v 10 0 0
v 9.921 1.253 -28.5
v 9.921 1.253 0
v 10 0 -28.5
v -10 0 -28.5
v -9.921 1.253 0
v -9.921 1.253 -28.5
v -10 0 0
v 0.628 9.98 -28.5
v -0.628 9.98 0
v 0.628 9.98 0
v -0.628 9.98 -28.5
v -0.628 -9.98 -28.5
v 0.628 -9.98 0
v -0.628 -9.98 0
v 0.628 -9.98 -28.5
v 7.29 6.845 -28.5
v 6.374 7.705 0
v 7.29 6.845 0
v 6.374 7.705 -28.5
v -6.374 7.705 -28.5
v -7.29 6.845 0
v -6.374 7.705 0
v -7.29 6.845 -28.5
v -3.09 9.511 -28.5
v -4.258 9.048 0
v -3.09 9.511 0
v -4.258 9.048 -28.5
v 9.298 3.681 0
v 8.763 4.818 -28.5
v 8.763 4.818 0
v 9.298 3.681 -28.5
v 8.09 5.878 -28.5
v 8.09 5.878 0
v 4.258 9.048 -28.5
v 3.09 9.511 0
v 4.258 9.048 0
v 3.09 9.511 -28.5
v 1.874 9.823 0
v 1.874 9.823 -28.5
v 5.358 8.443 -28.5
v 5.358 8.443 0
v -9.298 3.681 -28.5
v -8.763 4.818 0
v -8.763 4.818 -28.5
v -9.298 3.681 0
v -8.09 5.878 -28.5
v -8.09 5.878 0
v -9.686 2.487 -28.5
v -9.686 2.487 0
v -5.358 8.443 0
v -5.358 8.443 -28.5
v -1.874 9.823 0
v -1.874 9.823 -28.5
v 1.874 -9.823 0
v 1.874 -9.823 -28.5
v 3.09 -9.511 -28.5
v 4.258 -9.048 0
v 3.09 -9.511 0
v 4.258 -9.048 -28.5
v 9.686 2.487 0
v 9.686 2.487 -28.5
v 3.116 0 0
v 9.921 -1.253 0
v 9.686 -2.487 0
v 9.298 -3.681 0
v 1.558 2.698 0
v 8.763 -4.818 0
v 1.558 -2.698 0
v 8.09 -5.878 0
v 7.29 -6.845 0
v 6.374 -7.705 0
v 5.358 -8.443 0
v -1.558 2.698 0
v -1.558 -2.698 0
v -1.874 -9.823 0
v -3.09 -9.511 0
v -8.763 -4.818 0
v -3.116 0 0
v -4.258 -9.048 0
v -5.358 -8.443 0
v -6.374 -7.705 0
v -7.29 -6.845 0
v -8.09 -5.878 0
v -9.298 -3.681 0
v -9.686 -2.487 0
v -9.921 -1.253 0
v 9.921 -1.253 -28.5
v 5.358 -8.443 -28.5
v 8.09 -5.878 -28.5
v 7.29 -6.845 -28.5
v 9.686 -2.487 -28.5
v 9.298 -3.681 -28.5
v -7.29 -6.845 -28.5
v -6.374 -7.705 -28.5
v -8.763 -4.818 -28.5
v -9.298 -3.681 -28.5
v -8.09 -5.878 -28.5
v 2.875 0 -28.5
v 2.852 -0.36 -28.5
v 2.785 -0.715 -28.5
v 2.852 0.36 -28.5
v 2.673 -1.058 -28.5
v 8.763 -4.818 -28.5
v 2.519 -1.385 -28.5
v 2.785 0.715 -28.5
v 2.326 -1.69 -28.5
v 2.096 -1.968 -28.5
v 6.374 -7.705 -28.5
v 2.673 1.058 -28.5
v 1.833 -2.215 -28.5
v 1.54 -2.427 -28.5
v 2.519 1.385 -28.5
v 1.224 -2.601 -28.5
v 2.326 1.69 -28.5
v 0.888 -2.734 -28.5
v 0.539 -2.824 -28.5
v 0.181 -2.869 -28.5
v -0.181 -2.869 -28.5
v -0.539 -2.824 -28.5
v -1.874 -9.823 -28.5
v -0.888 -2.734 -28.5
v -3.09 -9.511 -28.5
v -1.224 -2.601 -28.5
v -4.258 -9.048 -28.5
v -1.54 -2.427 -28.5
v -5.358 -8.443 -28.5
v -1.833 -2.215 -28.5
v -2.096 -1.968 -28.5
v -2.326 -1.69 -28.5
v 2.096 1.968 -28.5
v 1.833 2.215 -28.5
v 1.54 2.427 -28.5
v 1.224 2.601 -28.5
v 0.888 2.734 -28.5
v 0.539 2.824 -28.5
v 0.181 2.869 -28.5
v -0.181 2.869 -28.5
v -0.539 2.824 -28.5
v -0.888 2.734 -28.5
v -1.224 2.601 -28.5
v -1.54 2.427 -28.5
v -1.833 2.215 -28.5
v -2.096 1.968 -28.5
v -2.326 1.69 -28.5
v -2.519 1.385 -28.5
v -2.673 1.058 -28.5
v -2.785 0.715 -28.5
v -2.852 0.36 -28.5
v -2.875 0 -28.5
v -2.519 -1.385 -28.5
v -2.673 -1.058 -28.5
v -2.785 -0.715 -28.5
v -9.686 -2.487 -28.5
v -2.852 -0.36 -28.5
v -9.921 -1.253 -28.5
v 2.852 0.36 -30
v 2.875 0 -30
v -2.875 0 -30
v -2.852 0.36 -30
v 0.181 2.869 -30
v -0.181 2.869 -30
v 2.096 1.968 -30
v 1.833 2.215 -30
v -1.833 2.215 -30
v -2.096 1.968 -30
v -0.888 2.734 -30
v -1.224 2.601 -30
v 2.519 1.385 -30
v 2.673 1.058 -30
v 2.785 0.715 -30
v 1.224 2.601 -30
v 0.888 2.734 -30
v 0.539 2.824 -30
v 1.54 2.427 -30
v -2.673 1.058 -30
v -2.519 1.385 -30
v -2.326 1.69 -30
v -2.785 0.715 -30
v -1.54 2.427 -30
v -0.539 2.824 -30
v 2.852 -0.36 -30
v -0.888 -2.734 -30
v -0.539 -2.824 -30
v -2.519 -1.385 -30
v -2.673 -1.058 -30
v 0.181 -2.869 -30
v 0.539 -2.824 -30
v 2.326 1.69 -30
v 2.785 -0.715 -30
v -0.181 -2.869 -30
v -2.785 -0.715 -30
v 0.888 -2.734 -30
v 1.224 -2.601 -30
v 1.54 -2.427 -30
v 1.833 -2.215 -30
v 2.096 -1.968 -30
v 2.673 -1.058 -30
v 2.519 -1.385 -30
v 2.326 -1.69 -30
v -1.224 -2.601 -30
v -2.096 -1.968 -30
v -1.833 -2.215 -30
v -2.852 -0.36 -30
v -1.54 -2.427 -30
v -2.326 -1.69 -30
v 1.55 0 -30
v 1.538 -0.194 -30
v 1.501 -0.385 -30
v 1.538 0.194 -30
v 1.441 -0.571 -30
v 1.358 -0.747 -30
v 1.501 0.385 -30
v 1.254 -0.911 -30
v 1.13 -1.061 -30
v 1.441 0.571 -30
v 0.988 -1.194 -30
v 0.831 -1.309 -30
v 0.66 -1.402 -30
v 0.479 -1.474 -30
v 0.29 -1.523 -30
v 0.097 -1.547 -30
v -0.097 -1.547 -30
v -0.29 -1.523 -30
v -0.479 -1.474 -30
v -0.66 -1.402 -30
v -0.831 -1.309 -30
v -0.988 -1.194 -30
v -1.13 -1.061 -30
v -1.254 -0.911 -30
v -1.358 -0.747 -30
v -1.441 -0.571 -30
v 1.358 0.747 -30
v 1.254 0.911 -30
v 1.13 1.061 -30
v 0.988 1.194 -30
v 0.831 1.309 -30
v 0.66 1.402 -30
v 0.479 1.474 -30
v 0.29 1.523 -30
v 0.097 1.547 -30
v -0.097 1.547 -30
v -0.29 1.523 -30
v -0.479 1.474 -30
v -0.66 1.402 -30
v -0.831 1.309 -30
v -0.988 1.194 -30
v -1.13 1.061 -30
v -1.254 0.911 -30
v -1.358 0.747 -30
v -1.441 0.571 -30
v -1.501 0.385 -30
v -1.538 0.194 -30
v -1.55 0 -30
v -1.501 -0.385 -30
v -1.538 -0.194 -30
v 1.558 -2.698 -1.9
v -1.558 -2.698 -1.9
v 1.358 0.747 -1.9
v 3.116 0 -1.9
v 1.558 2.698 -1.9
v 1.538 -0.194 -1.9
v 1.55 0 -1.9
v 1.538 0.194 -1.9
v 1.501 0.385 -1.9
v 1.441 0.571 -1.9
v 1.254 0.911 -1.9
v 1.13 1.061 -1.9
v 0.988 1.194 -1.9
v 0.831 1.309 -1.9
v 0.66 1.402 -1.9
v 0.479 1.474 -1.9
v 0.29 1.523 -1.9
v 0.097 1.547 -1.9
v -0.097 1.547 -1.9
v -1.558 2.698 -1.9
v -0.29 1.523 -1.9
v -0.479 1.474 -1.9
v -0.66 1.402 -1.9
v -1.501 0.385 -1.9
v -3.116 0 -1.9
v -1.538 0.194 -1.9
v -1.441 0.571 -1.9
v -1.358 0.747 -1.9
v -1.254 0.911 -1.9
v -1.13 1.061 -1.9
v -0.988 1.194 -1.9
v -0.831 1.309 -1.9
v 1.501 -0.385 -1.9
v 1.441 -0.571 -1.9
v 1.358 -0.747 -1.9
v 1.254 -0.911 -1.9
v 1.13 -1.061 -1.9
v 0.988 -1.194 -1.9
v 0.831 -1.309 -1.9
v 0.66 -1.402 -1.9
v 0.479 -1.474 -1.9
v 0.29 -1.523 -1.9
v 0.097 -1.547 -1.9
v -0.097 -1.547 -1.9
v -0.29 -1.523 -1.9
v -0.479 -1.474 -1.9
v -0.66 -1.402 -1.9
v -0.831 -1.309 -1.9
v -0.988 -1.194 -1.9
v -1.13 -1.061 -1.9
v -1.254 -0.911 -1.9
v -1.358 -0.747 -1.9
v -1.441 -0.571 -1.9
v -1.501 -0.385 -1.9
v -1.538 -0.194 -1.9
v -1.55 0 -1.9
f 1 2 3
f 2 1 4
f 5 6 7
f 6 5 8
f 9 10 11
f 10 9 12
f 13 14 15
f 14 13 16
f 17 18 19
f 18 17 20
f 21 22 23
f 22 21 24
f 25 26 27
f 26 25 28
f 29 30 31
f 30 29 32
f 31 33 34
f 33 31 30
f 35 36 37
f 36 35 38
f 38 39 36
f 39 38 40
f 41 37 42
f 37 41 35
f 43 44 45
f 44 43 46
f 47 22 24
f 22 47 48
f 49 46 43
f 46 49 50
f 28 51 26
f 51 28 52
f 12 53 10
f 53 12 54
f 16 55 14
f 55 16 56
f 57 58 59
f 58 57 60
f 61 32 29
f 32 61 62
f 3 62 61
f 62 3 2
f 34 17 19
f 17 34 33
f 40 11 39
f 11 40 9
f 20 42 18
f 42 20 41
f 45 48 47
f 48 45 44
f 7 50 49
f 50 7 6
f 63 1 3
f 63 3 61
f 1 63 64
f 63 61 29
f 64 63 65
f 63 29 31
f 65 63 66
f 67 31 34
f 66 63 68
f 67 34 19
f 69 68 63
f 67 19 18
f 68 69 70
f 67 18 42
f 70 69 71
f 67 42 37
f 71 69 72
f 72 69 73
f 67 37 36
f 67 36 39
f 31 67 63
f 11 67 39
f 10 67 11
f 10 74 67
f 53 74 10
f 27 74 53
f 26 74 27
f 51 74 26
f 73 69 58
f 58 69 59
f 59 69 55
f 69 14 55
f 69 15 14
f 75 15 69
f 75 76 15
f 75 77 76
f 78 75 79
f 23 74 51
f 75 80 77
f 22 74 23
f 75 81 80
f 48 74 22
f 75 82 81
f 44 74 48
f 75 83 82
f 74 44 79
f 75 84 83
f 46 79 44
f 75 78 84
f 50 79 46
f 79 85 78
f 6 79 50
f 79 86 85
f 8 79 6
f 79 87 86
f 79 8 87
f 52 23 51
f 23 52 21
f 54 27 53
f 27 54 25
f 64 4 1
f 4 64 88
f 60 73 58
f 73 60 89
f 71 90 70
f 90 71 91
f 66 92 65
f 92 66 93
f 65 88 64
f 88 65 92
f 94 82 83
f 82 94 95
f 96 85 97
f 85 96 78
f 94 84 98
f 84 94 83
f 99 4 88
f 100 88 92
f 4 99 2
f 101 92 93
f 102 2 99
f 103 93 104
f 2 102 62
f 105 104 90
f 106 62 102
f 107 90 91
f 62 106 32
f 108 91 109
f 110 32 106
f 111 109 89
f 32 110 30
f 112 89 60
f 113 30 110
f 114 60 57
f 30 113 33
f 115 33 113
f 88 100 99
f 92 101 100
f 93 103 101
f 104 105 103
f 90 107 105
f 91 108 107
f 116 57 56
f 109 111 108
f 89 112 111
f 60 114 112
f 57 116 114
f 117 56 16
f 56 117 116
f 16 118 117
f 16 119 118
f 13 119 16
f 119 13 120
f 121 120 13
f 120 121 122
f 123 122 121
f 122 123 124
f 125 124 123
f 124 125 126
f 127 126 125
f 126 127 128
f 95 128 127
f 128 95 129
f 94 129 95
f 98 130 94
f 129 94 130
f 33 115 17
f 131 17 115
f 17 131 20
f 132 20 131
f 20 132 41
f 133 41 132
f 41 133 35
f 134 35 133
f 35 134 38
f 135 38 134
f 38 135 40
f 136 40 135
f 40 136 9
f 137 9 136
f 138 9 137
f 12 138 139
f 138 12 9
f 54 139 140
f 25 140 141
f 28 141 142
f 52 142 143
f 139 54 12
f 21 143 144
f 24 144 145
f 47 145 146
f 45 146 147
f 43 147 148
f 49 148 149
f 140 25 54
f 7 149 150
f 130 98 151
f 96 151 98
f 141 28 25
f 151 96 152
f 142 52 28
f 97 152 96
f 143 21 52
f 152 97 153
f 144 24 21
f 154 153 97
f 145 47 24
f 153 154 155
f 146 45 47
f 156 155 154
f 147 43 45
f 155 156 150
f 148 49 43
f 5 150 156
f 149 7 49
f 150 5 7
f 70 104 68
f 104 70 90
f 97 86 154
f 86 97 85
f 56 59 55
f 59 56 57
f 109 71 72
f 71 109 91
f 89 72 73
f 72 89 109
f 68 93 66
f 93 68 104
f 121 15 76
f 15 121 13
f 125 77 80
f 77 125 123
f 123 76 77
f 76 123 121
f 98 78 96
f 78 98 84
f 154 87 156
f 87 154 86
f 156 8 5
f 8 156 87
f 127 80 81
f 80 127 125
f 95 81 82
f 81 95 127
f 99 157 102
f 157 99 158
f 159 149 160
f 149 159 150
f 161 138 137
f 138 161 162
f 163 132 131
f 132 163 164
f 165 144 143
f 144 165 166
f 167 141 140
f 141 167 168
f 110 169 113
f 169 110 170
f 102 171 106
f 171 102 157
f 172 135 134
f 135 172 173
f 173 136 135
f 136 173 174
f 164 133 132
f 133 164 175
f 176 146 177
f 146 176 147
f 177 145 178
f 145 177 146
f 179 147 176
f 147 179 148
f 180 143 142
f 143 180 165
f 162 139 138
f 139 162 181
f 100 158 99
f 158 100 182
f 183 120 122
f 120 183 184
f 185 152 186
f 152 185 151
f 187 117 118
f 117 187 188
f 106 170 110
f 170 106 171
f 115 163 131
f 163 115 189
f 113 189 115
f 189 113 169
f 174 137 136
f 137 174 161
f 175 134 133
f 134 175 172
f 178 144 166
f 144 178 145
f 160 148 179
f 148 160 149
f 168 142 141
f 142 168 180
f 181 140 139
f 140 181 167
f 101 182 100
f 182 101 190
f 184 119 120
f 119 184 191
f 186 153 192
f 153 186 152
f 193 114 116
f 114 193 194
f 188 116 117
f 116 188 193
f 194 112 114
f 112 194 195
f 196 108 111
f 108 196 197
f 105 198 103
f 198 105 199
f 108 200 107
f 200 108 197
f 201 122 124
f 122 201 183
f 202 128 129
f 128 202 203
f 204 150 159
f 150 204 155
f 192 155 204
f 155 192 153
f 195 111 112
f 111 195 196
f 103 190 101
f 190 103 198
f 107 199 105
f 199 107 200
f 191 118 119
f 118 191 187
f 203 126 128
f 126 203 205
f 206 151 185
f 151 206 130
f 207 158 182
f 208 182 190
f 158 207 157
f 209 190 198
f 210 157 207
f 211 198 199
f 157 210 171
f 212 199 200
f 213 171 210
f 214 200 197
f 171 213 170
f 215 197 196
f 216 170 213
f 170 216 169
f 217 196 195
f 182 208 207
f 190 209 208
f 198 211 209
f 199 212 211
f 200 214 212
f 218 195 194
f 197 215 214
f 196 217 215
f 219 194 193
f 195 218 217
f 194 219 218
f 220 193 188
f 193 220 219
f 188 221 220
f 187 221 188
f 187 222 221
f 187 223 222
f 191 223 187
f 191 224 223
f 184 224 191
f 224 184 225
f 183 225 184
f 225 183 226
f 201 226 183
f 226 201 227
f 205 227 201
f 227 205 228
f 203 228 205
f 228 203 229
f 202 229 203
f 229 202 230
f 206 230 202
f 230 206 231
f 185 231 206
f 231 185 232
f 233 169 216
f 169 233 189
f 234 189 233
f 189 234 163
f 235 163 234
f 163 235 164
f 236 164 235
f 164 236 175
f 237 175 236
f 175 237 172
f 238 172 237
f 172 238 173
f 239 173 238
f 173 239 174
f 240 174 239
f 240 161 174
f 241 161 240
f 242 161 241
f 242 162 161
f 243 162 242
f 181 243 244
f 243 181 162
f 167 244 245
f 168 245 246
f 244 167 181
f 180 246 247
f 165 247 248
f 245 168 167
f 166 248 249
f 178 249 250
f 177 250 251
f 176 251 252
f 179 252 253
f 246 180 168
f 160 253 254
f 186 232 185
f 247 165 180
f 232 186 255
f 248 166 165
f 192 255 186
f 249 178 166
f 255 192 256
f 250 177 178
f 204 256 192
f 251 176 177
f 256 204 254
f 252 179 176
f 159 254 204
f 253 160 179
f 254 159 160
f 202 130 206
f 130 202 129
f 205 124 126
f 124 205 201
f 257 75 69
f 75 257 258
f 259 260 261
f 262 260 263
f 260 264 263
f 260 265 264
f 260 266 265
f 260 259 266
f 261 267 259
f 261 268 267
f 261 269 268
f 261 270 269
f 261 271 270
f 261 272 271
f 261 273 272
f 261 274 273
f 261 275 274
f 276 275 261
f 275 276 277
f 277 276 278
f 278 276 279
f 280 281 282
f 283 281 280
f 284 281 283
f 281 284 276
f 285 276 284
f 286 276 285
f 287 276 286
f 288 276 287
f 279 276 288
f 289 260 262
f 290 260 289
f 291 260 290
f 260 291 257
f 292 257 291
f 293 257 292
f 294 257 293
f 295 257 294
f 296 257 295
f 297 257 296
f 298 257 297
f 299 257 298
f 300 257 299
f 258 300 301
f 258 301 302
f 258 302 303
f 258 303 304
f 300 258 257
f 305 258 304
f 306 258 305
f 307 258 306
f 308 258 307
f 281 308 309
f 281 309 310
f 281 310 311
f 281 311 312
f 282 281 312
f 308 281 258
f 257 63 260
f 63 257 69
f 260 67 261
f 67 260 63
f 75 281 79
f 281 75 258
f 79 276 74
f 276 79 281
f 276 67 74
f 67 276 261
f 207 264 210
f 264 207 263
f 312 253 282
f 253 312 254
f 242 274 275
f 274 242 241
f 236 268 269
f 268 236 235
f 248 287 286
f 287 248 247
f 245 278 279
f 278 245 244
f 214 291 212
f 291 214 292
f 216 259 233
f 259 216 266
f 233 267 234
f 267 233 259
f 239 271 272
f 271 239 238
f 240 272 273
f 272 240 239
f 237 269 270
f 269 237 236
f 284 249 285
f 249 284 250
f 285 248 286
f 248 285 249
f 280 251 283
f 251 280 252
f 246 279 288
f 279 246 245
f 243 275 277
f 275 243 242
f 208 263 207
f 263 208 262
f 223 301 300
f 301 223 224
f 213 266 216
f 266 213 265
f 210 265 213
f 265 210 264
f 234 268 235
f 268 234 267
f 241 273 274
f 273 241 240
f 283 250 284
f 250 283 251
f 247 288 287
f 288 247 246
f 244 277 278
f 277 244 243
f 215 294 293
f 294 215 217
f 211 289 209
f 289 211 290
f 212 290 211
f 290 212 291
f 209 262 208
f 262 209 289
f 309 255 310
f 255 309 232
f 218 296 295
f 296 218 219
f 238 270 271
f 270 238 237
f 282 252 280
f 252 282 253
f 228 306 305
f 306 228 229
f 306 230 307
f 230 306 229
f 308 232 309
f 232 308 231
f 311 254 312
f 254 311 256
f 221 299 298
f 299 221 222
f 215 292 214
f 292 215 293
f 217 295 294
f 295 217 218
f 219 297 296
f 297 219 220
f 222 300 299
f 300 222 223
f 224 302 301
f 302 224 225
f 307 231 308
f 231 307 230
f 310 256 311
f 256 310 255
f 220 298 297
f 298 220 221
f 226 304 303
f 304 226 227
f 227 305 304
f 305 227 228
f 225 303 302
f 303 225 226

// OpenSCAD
$fn = 50;

difference() {
	union() {
		translate(v = [0, 0, -28.5]) {
			cylinder(h = 28.5, r = 10.0);
		}
		#translate(v = [0, 0, -30.0]) {
			cylinder(h = 30, r = 2.875);
		}
	}
	union() {
		translate(v = [0, 0, 0]) {
			rotate(a = [0, 0, 0]) {
				difference() {
					union() {
						translate(v = [0, 0, -1.9]) {
							linear_extrude(height = 1.9) {
								polygon(points = [[3.1158, 0.0], [1.5579000000000005, 2.698361953111554], [-1.5578999999999994, 2.6983619531115544], [-3.1158, 3.815754496783323e-16], [-1.5579000000000014, -2.6983619531115535], [1.557899999999998, -2.6983619531115552]]);
							}
						}
					}
					union();
				}
			}
		}
		#translate(v = [0, 0, -100.0]) {
			cylinder(h = 200, r = 1.55);
		}
	}
}
